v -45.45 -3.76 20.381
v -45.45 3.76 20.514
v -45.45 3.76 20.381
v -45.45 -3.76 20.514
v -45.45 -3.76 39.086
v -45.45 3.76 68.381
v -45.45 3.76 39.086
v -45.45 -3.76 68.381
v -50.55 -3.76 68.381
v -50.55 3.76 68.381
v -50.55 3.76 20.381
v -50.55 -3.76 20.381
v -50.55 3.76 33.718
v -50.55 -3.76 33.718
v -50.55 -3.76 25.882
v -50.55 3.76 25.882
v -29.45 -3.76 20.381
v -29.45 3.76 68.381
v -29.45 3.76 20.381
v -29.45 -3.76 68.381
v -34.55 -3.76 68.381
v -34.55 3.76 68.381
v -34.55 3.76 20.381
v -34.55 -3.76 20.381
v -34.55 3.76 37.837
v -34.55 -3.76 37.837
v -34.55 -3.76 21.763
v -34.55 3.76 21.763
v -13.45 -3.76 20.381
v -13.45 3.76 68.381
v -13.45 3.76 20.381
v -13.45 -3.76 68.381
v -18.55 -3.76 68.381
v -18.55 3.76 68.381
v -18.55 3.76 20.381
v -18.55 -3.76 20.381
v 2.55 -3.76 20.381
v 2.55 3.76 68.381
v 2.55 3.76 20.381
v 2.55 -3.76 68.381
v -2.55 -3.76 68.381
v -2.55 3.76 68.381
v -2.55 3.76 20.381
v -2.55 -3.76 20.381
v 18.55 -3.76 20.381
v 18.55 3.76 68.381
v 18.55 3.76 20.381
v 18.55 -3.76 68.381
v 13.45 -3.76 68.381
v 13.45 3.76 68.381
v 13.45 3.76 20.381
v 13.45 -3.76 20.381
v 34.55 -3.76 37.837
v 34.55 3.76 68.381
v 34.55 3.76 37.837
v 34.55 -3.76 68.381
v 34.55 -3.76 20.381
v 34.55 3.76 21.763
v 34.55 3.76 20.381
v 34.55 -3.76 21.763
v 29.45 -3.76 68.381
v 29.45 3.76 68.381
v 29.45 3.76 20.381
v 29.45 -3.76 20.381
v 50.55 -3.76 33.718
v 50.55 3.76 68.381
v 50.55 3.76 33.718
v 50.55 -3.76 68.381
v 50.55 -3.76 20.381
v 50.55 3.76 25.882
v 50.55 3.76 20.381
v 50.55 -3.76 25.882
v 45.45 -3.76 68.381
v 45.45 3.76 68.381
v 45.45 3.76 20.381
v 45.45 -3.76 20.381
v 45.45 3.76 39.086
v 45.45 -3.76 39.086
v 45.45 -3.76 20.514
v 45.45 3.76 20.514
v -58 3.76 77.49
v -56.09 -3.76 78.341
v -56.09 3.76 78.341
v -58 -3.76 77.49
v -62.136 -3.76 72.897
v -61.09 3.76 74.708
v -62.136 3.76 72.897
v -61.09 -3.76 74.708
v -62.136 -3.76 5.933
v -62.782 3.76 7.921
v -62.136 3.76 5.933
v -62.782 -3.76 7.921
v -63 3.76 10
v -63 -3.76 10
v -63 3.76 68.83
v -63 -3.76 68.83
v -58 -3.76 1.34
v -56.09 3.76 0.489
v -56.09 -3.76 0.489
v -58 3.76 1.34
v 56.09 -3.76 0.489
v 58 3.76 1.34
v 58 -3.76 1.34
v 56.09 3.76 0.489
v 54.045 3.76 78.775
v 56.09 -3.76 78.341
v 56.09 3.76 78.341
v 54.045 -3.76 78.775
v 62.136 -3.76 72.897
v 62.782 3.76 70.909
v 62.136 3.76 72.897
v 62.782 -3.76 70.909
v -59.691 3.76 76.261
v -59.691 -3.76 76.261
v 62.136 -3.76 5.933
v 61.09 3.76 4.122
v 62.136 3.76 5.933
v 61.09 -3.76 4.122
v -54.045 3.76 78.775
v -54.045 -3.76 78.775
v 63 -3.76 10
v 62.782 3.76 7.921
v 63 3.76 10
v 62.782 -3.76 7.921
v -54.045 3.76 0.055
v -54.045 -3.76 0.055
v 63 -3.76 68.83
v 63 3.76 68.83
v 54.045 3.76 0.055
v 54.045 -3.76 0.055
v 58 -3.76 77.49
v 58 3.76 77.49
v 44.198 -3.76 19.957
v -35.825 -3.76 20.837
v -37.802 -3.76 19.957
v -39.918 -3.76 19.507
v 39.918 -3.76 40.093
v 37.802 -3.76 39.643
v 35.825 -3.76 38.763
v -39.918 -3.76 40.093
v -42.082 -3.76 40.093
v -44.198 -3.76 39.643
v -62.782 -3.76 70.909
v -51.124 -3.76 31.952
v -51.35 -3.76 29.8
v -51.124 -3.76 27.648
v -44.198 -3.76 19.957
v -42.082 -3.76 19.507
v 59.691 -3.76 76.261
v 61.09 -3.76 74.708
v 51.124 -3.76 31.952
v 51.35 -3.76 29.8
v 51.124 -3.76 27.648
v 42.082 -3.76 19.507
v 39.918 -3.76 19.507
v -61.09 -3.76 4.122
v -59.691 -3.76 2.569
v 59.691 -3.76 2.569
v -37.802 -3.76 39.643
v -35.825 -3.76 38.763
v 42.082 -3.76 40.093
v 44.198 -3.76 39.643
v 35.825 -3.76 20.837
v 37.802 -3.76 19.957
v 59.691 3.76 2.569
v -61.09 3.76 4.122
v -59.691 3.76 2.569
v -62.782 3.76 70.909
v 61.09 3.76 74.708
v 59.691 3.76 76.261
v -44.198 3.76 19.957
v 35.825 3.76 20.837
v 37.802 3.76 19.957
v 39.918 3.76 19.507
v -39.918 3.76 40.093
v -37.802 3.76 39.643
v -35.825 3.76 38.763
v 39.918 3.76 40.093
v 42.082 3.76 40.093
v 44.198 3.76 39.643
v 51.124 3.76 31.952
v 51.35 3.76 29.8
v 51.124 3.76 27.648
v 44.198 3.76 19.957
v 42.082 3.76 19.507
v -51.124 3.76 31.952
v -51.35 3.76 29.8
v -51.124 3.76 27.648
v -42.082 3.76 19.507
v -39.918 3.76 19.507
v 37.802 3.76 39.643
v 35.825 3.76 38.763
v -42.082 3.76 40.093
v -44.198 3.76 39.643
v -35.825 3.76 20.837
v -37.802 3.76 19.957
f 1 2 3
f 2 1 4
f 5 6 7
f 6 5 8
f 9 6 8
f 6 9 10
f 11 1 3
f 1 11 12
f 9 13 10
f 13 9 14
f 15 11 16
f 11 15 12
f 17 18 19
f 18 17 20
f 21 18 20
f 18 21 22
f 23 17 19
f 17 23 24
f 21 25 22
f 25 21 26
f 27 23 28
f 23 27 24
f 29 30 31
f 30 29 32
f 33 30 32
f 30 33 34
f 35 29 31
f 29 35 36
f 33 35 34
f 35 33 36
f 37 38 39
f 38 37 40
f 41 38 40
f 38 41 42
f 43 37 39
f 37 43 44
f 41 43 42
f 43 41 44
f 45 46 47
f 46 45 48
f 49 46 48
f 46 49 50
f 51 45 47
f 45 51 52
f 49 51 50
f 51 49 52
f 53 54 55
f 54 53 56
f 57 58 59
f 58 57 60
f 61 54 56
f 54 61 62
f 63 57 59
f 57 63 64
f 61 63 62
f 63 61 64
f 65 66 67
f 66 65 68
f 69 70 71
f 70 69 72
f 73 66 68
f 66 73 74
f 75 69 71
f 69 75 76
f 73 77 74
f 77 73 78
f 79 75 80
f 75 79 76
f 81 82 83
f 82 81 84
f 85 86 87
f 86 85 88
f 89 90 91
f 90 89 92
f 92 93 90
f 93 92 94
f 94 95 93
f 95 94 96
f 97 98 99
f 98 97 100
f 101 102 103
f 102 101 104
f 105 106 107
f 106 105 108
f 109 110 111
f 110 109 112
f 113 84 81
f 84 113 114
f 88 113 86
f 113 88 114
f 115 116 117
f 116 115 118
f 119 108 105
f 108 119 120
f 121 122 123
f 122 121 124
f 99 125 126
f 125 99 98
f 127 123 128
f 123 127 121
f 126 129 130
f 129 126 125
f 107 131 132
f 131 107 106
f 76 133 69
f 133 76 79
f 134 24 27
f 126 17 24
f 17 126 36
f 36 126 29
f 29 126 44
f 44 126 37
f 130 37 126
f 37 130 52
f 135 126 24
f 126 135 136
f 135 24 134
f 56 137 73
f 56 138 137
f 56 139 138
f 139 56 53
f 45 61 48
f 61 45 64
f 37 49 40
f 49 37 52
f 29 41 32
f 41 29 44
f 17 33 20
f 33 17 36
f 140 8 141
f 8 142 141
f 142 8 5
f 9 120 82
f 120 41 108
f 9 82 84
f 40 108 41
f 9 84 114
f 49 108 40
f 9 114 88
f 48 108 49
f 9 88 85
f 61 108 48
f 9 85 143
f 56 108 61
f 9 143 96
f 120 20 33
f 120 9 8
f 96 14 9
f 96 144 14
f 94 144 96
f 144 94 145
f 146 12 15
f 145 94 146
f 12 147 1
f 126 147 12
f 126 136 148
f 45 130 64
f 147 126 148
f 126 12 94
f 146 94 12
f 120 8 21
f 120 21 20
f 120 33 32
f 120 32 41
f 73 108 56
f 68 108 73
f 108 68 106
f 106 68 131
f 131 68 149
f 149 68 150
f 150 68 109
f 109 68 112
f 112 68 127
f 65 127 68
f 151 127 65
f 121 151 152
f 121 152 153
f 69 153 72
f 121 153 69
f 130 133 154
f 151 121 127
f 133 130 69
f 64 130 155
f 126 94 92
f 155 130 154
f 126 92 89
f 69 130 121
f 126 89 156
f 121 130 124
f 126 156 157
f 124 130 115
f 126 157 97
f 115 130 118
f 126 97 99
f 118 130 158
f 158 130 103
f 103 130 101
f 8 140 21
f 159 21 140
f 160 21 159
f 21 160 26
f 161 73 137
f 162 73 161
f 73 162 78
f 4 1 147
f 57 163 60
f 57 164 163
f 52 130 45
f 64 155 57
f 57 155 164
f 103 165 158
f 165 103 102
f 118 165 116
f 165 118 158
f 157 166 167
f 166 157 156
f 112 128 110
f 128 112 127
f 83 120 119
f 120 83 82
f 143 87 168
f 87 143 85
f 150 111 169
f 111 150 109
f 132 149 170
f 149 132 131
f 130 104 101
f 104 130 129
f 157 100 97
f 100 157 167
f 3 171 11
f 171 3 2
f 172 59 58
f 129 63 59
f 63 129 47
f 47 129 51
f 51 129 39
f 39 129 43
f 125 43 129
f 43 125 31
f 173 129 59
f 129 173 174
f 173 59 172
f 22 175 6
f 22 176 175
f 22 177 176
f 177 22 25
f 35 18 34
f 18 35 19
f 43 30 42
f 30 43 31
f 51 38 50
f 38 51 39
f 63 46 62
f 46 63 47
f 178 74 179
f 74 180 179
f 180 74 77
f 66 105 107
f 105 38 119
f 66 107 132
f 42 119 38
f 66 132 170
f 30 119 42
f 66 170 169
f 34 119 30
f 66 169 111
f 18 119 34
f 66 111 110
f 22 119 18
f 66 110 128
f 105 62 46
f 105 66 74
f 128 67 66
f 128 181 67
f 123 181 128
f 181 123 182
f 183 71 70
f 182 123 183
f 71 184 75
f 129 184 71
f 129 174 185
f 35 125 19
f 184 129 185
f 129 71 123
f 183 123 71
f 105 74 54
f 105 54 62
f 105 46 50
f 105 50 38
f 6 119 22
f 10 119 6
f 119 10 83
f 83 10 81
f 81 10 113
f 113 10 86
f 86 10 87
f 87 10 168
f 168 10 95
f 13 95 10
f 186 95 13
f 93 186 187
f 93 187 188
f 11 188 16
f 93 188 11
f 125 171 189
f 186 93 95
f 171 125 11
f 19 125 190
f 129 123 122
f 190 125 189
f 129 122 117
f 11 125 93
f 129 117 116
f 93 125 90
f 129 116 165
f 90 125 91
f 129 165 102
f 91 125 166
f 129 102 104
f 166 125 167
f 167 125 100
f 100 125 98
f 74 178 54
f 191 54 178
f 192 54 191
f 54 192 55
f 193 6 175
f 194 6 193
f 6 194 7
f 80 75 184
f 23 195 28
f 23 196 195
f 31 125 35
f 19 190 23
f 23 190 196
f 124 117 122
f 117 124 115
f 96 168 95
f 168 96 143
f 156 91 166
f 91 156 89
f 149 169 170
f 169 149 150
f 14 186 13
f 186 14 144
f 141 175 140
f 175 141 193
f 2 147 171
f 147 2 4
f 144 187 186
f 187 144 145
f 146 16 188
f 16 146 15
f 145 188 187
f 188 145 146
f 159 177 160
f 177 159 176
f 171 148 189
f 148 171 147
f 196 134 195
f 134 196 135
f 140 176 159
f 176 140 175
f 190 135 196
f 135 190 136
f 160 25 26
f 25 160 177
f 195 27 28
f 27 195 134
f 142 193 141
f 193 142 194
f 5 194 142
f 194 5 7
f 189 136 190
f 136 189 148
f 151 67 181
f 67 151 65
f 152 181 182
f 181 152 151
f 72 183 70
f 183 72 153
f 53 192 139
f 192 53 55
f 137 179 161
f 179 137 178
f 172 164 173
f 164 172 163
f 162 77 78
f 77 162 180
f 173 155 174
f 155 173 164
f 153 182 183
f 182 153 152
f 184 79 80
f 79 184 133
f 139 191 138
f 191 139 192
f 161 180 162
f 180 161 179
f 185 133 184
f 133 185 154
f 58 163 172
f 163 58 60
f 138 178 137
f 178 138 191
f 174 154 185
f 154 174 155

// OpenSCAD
/* doodle-meta {"version":1,"parameters":{"width":{"label":"Overall width","description":"Changes the body width","unit":"mm","feature":"body_width"},"height":{"label":"Overall height","description":"Changes the body height","unit":"mm","feature":"body_height"},"thickness":{"label":"Plate thickness","description":"Changes the plate depth","unit":"mm","feature":"body_thickness"},"slot_count":{"label":"Slot count","description":"Number of vertical slots","unit":"count","feature":"slots"},"slot_width":{"label":"Slot width","description":"Width of each vertical slot","unit":"mm","feature":"slots"},"slot_height":{"label":"Slot height","description":"Height of each vertical slot","unit":"mm","feature":"slots"},"slot_pitch":{"label":"Slot pitch","description":"Center-to-center distance between slots","unit":"mm","feature":"slots"},"headlight_diameter":{"label":"Headlight diameter","description":"Diameter of circular headlight cutouts","unit":"mm","feature":"headlights"},"headlight_x_offset":{"label":"Headlight offset","description":"Horizontal distance of headlights from center","unit":"mm","feature":"headlights"},"headlight_z_offset":{"label":"Headlight height","description":"Vertical center of headlights from bottom","unit":"mm","feature":"headlights"}},"features":{"body_width":{"kind":"dimension","axis":"x","label":"Overall width"},"body_height":{"kind":"dimension","axis":"z","label":"Overall height"},"body_thickness":{"kind":"dimension","axis":"y","label":"Plate thickness"},"slots":{"kind":"region","label":"Vertical slots","min":[{"parameter":"width","scale":0.25,"offset":0},{"parameter":"thickness","scale":-0.1,"offset":0},{"parameter":"height","scale":0.13,"offset":0}],"max":[{"parameter":"width","scale":0.75,"offset":0},{"parameter":"thickness","scale":1.1,"offset":0},{"parameter":"height","scale":0.74,"offset":0}]},"headlights":{"kind":"region","label":"Headlight cutouts","min":[{"parameter":"width","scale":0.09,"offset":0},{"parameter":"thickness","scale":-0.1,"offset":0},{"parameter":"height","scale":0.25,"offset":0}],"max":[{"parameter":"width","scale":0.91,"offset":0},{"parameter":"thickness","scale":1.1,"offset":0},{"parameter":"height","scale":0.55,"offset":0}]}}} */

// Parameters
width = 126.0;
height = 78.83;
thickness = 7.52;
slot_count = 7;
slot_width = 5.1;
slot_height = 48.0;
slot_pitch = 16.0;
headlight_diameter = 20.7;
headlight_x_offset = 41.0;
headlight_z_offset = 29.8;

// Derived constants
eps = 0.1;
corner_radius = 10;

// Module: grille body profile in XZ plane, extruded along Y
module grille_body() {
    // Profile is in XZ plane, extruded along Y
    // We draw in XY then rotate to XZ, then extrude along Y
    translate([0, 0, height/2])
        rotate([90, 0, 0])
            linear_extrude(height=thickness, center=true)
                hull() {
                    translate([-width/2 + corner_radius, -height/2 + corner_radius]) circle(r=corner_radius);
                    translate([width/2 - corner_radius, -height/2 + corner_radius]) circle(r=corner_radius);
                    translate([-width/2 + corner_radius, height/2 - corner_radius]) circle(r=corner_radius);
                    translate([width/2 - corner_radius, height/2 - corner_radius]) circle(r=corner_radius);
                }
}

// Module: vertical slot cutter (box through Y-axis)
module slot_cutter_box() {
    cube([slot_width, thickness + 2*eps, slot_height], center=true);
}

// Module: headlight circular cutter (cylinder through Y-axis)
module headlight_cutter() {
    rotate([90, 0, 0])
        cylinder(h=thickness + 2*eps, d=headlight_diameter, center=true);
}

// Main Design
difference() {
    // Positive body
    grille_body();
    
    // Subtract vertical slots
    for (i = [0 : slot_count - 1]) {
        slot_x = -(slot_count - 1) * slot_pitch / 2 + i * slot_pitch;
        // Slot center Z: measured v~0.437 -> Z = (1-0.437)*height = 0.563*78.83 ≈ 44.38
        slot_z = (1 - 0.437) * height;
        
        translate([slot_x, 0, slot_z])
            slot_cutter_box();
    }
    
    // Subtract headlight cutouts (left and right)
    translate([-headlight_x_offset, 0, headlight_z_offset])
        headlight_cutter();
        
    translate([headlight_x_offset, 0, headlight_z_offset])
        headlight_cutter();
}
